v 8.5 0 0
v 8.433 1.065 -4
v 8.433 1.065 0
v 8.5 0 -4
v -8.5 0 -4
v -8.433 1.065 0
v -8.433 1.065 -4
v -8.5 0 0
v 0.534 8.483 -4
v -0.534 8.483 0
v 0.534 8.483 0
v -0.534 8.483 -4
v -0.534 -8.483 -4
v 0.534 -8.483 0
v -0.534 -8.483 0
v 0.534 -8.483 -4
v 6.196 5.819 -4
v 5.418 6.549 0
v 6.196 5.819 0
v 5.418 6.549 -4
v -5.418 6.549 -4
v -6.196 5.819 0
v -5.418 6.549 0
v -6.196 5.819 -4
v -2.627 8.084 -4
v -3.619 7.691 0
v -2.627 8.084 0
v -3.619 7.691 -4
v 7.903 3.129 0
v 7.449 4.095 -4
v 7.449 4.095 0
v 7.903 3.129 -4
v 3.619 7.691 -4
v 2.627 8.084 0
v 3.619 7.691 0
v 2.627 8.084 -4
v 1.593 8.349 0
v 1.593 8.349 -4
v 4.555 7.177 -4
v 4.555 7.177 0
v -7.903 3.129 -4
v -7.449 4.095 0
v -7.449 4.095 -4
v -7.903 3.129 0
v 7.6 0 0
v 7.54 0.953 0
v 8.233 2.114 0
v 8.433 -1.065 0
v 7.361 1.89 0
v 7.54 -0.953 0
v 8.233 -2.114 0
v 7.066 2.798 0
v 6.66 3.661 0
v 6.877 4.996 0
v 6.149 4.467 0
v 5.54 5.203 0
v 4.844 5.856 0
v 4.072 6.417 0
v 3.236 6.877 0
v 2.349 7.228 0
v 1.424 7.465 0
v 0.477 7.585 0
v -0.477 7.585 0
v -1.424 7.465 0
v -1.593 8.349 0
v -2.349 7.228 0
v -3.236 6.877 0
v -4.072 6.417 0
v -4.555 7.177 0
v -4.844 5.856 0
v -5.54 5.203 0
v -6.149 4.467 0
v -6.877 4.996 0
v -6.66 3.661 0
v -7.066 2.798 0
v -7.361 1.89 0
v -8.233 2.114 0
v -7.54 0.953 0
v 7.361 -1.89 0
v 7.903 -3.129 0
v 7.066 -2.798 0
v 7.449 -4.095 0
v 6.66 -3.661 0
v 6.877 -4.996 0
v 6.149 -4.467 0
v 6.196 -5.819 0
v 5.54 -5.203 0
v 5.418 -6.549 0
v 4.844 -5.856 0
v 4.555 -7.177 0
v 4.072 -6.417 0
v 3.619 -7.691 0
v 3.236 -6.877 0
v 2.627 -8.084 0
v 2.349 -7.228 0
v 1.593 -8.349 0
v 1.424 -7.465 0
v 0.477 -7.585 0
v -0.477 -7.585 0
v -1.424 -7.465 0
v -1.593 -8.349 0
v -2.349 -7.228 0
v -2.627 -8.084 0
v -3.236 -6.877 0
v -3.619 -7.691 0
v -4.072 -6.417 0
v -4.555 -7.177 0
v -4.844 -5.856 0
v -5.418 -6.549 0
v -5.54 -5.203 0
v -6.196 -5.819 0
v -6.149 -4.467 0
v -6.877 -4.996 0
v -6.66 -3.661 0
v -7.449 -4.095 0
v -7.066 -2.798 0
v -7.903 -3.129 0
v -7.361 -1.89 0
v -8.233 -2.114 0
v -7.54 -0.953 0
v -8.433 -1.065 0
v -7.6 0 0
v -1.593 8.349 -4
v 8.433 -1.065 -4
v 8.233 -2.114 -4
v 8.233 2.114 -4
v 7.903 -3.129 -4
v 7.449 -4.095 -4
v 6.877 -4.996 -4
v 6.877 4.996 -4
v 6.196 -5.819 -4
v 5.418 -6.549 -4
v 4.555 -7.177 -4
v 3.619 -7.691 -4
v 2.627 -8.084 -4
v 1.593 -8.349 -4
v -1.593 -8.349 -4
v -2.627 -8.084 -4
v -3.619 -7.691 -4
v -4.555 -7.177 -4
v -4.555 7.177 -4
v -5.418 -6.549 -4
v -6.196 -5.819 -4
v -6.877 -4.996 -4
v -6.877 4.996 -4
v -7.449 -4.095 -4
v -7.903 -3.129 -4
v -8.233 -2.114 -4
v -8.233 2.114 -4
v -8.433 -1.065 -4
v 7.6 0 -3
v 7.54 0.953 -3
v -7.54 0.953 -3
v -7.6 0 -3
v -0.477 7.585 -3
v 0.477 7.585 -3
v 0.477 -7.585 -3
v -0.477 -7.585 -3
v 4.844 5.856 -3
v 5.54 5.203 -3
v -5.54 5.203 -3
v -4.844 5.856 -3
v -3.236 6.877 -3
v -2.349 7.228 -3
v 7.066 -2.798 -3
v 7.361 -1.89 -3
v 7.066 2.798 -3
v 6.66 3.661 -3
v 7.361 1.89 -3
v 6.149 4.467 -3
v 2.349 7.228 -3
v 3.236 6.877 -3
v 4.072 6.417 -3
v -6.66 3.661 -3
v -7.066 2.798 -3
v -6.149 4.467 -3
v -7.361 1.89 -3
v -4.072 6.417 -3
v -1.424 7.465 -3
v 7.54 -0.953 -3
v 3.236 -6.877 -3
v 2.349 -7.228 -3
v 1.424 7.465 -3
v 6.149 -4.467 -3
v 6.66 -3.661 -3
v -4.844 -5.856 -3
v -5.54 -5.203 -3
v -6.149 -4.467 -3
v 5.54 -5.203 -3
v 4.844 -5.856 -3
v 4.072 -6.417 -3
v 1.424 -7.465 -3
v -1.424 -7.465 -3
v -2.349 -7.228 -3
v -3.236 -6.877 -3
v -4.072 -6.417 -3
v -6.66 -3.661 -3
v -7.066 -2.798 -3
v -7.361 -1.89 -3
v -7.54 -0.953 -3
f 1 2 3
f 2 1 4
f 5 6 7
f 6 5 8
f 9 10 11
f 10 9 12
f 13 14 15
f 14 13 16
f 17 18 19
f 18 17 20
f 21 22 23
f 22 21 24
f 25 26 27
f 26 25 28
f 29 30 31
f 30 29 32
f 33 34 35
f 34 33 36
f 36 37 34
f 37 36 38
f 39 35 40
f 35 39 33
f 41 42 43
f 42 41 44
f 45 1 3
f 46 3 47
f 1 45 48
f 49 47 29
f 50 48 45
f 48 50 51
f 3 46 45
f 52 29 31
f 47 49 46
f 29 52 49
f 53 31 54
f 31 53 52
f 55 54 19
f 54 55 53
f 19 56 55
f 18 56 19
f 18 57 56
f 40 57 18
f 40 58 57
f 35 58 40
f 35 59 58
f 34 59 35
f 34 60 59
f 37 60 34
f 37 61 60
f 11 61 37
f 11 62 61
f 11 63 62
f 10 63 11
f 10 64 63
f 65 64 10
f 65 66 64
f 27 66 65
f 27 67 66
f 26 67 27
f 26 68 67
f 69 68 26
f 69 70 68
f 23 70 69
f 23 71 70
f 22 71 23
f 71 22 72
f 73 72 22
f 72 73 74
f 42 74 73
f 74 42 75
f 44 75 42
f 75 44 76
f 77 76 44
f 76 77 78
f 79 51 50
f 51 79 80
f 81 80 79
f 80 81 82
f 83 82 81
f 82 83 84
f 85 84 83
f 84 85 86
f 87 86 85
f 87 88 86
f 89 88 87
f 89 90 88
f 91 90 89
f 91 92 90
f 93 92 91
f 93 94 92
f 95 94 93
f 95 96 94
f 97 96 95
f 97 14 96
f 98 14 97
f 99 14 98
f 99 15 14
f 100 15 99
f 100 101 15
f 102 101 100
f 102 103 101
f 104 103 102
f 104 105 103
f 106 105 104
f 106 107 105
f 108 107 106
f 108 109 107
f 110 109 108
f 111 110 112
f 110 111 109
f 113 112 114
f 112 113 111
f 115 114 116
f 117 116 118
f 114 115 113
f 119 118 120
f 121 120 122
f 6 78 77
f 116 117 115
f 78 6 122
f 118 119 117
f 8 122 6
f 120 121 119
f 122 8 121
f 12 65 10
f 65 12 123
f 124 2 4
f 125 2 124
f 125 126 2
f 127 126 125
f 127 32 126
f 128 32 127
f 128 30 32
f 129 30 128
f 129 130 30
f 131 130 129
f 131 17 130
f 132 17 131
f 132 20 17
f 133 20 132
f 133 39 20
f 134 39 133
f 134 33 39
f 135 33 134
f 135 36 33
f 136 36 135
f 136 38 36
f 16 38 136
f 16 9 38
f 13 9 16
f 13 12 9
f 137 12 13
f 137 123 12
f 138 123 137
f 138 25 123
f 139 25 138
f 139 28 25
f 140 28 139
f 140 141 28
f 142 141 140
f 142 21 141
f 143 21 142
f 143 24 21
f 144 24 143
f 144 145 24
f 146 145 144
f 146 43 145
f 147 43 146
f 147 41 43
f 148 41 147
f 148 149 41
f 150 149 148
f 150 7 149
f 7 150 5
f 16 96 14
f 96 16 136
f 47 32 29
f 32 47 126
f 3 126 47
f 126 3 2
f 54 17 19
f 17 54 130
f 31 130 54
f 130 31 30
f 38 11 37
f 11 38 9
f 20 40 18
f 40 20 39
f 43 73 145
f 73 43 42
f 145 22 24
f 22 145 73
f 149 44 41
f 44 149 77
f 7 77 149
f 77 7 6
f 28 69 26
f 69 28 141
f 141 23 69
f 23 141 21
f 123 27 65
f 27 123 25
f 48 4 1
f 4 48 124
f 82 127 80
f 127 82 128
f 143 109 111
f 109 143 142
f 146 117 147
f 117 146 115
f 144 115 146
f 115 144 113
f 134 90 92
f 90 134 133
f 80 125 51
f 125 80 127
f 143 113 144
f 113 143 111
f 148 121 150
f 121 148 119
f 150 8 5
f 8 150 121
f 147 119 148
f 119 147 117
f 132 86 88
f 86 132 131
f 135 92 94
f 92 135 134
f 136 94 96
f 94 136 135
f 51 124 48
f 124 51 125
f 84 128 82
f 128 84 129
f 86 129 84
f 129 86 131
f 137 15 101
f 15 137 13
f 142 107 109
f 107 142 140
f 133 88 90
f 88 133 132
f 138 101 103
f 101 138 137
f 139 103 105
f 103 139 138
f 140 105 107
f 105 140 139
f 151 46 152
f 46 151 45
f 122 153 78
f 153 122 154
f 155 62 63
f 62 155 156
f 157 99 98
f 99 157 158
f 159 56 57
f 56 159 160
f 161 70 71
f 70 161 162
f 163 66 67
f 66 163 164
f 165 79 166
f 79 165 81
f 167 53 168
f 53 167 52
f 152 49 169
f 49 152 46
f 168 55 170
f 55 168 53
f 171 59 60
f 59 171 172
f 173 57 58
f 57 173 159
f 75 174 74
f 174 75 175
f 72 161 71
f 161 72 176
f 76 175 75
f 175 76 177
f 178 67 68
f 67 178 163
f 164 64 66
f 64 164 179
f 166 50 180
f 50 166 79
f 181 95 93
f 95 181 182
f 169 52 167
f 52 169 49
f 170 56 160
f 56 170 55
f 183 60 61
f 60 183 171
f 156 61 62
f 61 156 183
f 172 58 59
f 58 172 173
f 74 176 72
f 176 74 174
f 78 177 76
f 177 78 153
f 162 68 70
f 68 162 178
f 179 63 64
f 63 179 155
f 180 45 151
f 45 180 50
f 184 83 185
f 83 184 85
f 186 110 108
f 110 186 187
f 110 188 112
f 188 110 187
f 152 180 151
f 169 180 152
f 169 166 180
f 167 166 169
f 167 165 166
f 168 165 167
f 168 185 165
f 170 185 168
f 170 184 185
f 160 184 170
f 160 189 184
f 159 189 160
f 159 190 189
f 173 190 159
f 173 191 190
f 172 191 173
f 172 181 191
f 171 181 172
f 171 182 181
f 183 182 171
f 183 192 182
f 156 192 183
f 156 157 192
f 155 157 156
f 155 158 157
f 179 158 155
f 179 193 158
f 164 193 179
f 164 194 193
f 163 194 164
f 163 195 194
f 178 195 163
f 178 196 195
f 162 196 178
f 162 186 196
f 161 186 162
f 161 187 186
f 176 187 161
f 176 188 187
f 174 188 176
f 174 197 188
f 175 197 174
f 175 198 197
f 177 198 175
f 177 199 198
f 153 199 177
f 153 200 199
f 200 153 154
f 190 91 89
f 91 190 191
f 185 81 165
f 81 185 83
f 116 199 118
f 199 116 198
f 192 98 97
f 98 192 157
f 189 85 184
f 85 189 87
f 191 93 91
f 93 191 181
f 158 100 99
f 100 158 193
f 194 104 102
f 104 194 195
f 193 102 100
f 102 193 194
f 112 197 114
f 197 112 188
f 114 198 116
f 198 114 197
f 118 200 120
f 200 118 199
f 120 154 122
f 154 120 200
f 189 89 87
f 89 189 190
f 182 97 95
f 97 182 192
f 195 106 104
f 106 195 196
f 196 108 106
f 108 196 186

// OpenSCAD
$fn = 50;


difference() {
	union() {
		translate(v = [0, 0, -4.0000000000]) {
			cylinder(h = 4, r = 8.5000000000);
		}
	}
	union() {
		#translate(v = [0, 0, -3.0000000000]) {
			cylinder(h = 3, r = 7.6000000000);
		}
	}
}
